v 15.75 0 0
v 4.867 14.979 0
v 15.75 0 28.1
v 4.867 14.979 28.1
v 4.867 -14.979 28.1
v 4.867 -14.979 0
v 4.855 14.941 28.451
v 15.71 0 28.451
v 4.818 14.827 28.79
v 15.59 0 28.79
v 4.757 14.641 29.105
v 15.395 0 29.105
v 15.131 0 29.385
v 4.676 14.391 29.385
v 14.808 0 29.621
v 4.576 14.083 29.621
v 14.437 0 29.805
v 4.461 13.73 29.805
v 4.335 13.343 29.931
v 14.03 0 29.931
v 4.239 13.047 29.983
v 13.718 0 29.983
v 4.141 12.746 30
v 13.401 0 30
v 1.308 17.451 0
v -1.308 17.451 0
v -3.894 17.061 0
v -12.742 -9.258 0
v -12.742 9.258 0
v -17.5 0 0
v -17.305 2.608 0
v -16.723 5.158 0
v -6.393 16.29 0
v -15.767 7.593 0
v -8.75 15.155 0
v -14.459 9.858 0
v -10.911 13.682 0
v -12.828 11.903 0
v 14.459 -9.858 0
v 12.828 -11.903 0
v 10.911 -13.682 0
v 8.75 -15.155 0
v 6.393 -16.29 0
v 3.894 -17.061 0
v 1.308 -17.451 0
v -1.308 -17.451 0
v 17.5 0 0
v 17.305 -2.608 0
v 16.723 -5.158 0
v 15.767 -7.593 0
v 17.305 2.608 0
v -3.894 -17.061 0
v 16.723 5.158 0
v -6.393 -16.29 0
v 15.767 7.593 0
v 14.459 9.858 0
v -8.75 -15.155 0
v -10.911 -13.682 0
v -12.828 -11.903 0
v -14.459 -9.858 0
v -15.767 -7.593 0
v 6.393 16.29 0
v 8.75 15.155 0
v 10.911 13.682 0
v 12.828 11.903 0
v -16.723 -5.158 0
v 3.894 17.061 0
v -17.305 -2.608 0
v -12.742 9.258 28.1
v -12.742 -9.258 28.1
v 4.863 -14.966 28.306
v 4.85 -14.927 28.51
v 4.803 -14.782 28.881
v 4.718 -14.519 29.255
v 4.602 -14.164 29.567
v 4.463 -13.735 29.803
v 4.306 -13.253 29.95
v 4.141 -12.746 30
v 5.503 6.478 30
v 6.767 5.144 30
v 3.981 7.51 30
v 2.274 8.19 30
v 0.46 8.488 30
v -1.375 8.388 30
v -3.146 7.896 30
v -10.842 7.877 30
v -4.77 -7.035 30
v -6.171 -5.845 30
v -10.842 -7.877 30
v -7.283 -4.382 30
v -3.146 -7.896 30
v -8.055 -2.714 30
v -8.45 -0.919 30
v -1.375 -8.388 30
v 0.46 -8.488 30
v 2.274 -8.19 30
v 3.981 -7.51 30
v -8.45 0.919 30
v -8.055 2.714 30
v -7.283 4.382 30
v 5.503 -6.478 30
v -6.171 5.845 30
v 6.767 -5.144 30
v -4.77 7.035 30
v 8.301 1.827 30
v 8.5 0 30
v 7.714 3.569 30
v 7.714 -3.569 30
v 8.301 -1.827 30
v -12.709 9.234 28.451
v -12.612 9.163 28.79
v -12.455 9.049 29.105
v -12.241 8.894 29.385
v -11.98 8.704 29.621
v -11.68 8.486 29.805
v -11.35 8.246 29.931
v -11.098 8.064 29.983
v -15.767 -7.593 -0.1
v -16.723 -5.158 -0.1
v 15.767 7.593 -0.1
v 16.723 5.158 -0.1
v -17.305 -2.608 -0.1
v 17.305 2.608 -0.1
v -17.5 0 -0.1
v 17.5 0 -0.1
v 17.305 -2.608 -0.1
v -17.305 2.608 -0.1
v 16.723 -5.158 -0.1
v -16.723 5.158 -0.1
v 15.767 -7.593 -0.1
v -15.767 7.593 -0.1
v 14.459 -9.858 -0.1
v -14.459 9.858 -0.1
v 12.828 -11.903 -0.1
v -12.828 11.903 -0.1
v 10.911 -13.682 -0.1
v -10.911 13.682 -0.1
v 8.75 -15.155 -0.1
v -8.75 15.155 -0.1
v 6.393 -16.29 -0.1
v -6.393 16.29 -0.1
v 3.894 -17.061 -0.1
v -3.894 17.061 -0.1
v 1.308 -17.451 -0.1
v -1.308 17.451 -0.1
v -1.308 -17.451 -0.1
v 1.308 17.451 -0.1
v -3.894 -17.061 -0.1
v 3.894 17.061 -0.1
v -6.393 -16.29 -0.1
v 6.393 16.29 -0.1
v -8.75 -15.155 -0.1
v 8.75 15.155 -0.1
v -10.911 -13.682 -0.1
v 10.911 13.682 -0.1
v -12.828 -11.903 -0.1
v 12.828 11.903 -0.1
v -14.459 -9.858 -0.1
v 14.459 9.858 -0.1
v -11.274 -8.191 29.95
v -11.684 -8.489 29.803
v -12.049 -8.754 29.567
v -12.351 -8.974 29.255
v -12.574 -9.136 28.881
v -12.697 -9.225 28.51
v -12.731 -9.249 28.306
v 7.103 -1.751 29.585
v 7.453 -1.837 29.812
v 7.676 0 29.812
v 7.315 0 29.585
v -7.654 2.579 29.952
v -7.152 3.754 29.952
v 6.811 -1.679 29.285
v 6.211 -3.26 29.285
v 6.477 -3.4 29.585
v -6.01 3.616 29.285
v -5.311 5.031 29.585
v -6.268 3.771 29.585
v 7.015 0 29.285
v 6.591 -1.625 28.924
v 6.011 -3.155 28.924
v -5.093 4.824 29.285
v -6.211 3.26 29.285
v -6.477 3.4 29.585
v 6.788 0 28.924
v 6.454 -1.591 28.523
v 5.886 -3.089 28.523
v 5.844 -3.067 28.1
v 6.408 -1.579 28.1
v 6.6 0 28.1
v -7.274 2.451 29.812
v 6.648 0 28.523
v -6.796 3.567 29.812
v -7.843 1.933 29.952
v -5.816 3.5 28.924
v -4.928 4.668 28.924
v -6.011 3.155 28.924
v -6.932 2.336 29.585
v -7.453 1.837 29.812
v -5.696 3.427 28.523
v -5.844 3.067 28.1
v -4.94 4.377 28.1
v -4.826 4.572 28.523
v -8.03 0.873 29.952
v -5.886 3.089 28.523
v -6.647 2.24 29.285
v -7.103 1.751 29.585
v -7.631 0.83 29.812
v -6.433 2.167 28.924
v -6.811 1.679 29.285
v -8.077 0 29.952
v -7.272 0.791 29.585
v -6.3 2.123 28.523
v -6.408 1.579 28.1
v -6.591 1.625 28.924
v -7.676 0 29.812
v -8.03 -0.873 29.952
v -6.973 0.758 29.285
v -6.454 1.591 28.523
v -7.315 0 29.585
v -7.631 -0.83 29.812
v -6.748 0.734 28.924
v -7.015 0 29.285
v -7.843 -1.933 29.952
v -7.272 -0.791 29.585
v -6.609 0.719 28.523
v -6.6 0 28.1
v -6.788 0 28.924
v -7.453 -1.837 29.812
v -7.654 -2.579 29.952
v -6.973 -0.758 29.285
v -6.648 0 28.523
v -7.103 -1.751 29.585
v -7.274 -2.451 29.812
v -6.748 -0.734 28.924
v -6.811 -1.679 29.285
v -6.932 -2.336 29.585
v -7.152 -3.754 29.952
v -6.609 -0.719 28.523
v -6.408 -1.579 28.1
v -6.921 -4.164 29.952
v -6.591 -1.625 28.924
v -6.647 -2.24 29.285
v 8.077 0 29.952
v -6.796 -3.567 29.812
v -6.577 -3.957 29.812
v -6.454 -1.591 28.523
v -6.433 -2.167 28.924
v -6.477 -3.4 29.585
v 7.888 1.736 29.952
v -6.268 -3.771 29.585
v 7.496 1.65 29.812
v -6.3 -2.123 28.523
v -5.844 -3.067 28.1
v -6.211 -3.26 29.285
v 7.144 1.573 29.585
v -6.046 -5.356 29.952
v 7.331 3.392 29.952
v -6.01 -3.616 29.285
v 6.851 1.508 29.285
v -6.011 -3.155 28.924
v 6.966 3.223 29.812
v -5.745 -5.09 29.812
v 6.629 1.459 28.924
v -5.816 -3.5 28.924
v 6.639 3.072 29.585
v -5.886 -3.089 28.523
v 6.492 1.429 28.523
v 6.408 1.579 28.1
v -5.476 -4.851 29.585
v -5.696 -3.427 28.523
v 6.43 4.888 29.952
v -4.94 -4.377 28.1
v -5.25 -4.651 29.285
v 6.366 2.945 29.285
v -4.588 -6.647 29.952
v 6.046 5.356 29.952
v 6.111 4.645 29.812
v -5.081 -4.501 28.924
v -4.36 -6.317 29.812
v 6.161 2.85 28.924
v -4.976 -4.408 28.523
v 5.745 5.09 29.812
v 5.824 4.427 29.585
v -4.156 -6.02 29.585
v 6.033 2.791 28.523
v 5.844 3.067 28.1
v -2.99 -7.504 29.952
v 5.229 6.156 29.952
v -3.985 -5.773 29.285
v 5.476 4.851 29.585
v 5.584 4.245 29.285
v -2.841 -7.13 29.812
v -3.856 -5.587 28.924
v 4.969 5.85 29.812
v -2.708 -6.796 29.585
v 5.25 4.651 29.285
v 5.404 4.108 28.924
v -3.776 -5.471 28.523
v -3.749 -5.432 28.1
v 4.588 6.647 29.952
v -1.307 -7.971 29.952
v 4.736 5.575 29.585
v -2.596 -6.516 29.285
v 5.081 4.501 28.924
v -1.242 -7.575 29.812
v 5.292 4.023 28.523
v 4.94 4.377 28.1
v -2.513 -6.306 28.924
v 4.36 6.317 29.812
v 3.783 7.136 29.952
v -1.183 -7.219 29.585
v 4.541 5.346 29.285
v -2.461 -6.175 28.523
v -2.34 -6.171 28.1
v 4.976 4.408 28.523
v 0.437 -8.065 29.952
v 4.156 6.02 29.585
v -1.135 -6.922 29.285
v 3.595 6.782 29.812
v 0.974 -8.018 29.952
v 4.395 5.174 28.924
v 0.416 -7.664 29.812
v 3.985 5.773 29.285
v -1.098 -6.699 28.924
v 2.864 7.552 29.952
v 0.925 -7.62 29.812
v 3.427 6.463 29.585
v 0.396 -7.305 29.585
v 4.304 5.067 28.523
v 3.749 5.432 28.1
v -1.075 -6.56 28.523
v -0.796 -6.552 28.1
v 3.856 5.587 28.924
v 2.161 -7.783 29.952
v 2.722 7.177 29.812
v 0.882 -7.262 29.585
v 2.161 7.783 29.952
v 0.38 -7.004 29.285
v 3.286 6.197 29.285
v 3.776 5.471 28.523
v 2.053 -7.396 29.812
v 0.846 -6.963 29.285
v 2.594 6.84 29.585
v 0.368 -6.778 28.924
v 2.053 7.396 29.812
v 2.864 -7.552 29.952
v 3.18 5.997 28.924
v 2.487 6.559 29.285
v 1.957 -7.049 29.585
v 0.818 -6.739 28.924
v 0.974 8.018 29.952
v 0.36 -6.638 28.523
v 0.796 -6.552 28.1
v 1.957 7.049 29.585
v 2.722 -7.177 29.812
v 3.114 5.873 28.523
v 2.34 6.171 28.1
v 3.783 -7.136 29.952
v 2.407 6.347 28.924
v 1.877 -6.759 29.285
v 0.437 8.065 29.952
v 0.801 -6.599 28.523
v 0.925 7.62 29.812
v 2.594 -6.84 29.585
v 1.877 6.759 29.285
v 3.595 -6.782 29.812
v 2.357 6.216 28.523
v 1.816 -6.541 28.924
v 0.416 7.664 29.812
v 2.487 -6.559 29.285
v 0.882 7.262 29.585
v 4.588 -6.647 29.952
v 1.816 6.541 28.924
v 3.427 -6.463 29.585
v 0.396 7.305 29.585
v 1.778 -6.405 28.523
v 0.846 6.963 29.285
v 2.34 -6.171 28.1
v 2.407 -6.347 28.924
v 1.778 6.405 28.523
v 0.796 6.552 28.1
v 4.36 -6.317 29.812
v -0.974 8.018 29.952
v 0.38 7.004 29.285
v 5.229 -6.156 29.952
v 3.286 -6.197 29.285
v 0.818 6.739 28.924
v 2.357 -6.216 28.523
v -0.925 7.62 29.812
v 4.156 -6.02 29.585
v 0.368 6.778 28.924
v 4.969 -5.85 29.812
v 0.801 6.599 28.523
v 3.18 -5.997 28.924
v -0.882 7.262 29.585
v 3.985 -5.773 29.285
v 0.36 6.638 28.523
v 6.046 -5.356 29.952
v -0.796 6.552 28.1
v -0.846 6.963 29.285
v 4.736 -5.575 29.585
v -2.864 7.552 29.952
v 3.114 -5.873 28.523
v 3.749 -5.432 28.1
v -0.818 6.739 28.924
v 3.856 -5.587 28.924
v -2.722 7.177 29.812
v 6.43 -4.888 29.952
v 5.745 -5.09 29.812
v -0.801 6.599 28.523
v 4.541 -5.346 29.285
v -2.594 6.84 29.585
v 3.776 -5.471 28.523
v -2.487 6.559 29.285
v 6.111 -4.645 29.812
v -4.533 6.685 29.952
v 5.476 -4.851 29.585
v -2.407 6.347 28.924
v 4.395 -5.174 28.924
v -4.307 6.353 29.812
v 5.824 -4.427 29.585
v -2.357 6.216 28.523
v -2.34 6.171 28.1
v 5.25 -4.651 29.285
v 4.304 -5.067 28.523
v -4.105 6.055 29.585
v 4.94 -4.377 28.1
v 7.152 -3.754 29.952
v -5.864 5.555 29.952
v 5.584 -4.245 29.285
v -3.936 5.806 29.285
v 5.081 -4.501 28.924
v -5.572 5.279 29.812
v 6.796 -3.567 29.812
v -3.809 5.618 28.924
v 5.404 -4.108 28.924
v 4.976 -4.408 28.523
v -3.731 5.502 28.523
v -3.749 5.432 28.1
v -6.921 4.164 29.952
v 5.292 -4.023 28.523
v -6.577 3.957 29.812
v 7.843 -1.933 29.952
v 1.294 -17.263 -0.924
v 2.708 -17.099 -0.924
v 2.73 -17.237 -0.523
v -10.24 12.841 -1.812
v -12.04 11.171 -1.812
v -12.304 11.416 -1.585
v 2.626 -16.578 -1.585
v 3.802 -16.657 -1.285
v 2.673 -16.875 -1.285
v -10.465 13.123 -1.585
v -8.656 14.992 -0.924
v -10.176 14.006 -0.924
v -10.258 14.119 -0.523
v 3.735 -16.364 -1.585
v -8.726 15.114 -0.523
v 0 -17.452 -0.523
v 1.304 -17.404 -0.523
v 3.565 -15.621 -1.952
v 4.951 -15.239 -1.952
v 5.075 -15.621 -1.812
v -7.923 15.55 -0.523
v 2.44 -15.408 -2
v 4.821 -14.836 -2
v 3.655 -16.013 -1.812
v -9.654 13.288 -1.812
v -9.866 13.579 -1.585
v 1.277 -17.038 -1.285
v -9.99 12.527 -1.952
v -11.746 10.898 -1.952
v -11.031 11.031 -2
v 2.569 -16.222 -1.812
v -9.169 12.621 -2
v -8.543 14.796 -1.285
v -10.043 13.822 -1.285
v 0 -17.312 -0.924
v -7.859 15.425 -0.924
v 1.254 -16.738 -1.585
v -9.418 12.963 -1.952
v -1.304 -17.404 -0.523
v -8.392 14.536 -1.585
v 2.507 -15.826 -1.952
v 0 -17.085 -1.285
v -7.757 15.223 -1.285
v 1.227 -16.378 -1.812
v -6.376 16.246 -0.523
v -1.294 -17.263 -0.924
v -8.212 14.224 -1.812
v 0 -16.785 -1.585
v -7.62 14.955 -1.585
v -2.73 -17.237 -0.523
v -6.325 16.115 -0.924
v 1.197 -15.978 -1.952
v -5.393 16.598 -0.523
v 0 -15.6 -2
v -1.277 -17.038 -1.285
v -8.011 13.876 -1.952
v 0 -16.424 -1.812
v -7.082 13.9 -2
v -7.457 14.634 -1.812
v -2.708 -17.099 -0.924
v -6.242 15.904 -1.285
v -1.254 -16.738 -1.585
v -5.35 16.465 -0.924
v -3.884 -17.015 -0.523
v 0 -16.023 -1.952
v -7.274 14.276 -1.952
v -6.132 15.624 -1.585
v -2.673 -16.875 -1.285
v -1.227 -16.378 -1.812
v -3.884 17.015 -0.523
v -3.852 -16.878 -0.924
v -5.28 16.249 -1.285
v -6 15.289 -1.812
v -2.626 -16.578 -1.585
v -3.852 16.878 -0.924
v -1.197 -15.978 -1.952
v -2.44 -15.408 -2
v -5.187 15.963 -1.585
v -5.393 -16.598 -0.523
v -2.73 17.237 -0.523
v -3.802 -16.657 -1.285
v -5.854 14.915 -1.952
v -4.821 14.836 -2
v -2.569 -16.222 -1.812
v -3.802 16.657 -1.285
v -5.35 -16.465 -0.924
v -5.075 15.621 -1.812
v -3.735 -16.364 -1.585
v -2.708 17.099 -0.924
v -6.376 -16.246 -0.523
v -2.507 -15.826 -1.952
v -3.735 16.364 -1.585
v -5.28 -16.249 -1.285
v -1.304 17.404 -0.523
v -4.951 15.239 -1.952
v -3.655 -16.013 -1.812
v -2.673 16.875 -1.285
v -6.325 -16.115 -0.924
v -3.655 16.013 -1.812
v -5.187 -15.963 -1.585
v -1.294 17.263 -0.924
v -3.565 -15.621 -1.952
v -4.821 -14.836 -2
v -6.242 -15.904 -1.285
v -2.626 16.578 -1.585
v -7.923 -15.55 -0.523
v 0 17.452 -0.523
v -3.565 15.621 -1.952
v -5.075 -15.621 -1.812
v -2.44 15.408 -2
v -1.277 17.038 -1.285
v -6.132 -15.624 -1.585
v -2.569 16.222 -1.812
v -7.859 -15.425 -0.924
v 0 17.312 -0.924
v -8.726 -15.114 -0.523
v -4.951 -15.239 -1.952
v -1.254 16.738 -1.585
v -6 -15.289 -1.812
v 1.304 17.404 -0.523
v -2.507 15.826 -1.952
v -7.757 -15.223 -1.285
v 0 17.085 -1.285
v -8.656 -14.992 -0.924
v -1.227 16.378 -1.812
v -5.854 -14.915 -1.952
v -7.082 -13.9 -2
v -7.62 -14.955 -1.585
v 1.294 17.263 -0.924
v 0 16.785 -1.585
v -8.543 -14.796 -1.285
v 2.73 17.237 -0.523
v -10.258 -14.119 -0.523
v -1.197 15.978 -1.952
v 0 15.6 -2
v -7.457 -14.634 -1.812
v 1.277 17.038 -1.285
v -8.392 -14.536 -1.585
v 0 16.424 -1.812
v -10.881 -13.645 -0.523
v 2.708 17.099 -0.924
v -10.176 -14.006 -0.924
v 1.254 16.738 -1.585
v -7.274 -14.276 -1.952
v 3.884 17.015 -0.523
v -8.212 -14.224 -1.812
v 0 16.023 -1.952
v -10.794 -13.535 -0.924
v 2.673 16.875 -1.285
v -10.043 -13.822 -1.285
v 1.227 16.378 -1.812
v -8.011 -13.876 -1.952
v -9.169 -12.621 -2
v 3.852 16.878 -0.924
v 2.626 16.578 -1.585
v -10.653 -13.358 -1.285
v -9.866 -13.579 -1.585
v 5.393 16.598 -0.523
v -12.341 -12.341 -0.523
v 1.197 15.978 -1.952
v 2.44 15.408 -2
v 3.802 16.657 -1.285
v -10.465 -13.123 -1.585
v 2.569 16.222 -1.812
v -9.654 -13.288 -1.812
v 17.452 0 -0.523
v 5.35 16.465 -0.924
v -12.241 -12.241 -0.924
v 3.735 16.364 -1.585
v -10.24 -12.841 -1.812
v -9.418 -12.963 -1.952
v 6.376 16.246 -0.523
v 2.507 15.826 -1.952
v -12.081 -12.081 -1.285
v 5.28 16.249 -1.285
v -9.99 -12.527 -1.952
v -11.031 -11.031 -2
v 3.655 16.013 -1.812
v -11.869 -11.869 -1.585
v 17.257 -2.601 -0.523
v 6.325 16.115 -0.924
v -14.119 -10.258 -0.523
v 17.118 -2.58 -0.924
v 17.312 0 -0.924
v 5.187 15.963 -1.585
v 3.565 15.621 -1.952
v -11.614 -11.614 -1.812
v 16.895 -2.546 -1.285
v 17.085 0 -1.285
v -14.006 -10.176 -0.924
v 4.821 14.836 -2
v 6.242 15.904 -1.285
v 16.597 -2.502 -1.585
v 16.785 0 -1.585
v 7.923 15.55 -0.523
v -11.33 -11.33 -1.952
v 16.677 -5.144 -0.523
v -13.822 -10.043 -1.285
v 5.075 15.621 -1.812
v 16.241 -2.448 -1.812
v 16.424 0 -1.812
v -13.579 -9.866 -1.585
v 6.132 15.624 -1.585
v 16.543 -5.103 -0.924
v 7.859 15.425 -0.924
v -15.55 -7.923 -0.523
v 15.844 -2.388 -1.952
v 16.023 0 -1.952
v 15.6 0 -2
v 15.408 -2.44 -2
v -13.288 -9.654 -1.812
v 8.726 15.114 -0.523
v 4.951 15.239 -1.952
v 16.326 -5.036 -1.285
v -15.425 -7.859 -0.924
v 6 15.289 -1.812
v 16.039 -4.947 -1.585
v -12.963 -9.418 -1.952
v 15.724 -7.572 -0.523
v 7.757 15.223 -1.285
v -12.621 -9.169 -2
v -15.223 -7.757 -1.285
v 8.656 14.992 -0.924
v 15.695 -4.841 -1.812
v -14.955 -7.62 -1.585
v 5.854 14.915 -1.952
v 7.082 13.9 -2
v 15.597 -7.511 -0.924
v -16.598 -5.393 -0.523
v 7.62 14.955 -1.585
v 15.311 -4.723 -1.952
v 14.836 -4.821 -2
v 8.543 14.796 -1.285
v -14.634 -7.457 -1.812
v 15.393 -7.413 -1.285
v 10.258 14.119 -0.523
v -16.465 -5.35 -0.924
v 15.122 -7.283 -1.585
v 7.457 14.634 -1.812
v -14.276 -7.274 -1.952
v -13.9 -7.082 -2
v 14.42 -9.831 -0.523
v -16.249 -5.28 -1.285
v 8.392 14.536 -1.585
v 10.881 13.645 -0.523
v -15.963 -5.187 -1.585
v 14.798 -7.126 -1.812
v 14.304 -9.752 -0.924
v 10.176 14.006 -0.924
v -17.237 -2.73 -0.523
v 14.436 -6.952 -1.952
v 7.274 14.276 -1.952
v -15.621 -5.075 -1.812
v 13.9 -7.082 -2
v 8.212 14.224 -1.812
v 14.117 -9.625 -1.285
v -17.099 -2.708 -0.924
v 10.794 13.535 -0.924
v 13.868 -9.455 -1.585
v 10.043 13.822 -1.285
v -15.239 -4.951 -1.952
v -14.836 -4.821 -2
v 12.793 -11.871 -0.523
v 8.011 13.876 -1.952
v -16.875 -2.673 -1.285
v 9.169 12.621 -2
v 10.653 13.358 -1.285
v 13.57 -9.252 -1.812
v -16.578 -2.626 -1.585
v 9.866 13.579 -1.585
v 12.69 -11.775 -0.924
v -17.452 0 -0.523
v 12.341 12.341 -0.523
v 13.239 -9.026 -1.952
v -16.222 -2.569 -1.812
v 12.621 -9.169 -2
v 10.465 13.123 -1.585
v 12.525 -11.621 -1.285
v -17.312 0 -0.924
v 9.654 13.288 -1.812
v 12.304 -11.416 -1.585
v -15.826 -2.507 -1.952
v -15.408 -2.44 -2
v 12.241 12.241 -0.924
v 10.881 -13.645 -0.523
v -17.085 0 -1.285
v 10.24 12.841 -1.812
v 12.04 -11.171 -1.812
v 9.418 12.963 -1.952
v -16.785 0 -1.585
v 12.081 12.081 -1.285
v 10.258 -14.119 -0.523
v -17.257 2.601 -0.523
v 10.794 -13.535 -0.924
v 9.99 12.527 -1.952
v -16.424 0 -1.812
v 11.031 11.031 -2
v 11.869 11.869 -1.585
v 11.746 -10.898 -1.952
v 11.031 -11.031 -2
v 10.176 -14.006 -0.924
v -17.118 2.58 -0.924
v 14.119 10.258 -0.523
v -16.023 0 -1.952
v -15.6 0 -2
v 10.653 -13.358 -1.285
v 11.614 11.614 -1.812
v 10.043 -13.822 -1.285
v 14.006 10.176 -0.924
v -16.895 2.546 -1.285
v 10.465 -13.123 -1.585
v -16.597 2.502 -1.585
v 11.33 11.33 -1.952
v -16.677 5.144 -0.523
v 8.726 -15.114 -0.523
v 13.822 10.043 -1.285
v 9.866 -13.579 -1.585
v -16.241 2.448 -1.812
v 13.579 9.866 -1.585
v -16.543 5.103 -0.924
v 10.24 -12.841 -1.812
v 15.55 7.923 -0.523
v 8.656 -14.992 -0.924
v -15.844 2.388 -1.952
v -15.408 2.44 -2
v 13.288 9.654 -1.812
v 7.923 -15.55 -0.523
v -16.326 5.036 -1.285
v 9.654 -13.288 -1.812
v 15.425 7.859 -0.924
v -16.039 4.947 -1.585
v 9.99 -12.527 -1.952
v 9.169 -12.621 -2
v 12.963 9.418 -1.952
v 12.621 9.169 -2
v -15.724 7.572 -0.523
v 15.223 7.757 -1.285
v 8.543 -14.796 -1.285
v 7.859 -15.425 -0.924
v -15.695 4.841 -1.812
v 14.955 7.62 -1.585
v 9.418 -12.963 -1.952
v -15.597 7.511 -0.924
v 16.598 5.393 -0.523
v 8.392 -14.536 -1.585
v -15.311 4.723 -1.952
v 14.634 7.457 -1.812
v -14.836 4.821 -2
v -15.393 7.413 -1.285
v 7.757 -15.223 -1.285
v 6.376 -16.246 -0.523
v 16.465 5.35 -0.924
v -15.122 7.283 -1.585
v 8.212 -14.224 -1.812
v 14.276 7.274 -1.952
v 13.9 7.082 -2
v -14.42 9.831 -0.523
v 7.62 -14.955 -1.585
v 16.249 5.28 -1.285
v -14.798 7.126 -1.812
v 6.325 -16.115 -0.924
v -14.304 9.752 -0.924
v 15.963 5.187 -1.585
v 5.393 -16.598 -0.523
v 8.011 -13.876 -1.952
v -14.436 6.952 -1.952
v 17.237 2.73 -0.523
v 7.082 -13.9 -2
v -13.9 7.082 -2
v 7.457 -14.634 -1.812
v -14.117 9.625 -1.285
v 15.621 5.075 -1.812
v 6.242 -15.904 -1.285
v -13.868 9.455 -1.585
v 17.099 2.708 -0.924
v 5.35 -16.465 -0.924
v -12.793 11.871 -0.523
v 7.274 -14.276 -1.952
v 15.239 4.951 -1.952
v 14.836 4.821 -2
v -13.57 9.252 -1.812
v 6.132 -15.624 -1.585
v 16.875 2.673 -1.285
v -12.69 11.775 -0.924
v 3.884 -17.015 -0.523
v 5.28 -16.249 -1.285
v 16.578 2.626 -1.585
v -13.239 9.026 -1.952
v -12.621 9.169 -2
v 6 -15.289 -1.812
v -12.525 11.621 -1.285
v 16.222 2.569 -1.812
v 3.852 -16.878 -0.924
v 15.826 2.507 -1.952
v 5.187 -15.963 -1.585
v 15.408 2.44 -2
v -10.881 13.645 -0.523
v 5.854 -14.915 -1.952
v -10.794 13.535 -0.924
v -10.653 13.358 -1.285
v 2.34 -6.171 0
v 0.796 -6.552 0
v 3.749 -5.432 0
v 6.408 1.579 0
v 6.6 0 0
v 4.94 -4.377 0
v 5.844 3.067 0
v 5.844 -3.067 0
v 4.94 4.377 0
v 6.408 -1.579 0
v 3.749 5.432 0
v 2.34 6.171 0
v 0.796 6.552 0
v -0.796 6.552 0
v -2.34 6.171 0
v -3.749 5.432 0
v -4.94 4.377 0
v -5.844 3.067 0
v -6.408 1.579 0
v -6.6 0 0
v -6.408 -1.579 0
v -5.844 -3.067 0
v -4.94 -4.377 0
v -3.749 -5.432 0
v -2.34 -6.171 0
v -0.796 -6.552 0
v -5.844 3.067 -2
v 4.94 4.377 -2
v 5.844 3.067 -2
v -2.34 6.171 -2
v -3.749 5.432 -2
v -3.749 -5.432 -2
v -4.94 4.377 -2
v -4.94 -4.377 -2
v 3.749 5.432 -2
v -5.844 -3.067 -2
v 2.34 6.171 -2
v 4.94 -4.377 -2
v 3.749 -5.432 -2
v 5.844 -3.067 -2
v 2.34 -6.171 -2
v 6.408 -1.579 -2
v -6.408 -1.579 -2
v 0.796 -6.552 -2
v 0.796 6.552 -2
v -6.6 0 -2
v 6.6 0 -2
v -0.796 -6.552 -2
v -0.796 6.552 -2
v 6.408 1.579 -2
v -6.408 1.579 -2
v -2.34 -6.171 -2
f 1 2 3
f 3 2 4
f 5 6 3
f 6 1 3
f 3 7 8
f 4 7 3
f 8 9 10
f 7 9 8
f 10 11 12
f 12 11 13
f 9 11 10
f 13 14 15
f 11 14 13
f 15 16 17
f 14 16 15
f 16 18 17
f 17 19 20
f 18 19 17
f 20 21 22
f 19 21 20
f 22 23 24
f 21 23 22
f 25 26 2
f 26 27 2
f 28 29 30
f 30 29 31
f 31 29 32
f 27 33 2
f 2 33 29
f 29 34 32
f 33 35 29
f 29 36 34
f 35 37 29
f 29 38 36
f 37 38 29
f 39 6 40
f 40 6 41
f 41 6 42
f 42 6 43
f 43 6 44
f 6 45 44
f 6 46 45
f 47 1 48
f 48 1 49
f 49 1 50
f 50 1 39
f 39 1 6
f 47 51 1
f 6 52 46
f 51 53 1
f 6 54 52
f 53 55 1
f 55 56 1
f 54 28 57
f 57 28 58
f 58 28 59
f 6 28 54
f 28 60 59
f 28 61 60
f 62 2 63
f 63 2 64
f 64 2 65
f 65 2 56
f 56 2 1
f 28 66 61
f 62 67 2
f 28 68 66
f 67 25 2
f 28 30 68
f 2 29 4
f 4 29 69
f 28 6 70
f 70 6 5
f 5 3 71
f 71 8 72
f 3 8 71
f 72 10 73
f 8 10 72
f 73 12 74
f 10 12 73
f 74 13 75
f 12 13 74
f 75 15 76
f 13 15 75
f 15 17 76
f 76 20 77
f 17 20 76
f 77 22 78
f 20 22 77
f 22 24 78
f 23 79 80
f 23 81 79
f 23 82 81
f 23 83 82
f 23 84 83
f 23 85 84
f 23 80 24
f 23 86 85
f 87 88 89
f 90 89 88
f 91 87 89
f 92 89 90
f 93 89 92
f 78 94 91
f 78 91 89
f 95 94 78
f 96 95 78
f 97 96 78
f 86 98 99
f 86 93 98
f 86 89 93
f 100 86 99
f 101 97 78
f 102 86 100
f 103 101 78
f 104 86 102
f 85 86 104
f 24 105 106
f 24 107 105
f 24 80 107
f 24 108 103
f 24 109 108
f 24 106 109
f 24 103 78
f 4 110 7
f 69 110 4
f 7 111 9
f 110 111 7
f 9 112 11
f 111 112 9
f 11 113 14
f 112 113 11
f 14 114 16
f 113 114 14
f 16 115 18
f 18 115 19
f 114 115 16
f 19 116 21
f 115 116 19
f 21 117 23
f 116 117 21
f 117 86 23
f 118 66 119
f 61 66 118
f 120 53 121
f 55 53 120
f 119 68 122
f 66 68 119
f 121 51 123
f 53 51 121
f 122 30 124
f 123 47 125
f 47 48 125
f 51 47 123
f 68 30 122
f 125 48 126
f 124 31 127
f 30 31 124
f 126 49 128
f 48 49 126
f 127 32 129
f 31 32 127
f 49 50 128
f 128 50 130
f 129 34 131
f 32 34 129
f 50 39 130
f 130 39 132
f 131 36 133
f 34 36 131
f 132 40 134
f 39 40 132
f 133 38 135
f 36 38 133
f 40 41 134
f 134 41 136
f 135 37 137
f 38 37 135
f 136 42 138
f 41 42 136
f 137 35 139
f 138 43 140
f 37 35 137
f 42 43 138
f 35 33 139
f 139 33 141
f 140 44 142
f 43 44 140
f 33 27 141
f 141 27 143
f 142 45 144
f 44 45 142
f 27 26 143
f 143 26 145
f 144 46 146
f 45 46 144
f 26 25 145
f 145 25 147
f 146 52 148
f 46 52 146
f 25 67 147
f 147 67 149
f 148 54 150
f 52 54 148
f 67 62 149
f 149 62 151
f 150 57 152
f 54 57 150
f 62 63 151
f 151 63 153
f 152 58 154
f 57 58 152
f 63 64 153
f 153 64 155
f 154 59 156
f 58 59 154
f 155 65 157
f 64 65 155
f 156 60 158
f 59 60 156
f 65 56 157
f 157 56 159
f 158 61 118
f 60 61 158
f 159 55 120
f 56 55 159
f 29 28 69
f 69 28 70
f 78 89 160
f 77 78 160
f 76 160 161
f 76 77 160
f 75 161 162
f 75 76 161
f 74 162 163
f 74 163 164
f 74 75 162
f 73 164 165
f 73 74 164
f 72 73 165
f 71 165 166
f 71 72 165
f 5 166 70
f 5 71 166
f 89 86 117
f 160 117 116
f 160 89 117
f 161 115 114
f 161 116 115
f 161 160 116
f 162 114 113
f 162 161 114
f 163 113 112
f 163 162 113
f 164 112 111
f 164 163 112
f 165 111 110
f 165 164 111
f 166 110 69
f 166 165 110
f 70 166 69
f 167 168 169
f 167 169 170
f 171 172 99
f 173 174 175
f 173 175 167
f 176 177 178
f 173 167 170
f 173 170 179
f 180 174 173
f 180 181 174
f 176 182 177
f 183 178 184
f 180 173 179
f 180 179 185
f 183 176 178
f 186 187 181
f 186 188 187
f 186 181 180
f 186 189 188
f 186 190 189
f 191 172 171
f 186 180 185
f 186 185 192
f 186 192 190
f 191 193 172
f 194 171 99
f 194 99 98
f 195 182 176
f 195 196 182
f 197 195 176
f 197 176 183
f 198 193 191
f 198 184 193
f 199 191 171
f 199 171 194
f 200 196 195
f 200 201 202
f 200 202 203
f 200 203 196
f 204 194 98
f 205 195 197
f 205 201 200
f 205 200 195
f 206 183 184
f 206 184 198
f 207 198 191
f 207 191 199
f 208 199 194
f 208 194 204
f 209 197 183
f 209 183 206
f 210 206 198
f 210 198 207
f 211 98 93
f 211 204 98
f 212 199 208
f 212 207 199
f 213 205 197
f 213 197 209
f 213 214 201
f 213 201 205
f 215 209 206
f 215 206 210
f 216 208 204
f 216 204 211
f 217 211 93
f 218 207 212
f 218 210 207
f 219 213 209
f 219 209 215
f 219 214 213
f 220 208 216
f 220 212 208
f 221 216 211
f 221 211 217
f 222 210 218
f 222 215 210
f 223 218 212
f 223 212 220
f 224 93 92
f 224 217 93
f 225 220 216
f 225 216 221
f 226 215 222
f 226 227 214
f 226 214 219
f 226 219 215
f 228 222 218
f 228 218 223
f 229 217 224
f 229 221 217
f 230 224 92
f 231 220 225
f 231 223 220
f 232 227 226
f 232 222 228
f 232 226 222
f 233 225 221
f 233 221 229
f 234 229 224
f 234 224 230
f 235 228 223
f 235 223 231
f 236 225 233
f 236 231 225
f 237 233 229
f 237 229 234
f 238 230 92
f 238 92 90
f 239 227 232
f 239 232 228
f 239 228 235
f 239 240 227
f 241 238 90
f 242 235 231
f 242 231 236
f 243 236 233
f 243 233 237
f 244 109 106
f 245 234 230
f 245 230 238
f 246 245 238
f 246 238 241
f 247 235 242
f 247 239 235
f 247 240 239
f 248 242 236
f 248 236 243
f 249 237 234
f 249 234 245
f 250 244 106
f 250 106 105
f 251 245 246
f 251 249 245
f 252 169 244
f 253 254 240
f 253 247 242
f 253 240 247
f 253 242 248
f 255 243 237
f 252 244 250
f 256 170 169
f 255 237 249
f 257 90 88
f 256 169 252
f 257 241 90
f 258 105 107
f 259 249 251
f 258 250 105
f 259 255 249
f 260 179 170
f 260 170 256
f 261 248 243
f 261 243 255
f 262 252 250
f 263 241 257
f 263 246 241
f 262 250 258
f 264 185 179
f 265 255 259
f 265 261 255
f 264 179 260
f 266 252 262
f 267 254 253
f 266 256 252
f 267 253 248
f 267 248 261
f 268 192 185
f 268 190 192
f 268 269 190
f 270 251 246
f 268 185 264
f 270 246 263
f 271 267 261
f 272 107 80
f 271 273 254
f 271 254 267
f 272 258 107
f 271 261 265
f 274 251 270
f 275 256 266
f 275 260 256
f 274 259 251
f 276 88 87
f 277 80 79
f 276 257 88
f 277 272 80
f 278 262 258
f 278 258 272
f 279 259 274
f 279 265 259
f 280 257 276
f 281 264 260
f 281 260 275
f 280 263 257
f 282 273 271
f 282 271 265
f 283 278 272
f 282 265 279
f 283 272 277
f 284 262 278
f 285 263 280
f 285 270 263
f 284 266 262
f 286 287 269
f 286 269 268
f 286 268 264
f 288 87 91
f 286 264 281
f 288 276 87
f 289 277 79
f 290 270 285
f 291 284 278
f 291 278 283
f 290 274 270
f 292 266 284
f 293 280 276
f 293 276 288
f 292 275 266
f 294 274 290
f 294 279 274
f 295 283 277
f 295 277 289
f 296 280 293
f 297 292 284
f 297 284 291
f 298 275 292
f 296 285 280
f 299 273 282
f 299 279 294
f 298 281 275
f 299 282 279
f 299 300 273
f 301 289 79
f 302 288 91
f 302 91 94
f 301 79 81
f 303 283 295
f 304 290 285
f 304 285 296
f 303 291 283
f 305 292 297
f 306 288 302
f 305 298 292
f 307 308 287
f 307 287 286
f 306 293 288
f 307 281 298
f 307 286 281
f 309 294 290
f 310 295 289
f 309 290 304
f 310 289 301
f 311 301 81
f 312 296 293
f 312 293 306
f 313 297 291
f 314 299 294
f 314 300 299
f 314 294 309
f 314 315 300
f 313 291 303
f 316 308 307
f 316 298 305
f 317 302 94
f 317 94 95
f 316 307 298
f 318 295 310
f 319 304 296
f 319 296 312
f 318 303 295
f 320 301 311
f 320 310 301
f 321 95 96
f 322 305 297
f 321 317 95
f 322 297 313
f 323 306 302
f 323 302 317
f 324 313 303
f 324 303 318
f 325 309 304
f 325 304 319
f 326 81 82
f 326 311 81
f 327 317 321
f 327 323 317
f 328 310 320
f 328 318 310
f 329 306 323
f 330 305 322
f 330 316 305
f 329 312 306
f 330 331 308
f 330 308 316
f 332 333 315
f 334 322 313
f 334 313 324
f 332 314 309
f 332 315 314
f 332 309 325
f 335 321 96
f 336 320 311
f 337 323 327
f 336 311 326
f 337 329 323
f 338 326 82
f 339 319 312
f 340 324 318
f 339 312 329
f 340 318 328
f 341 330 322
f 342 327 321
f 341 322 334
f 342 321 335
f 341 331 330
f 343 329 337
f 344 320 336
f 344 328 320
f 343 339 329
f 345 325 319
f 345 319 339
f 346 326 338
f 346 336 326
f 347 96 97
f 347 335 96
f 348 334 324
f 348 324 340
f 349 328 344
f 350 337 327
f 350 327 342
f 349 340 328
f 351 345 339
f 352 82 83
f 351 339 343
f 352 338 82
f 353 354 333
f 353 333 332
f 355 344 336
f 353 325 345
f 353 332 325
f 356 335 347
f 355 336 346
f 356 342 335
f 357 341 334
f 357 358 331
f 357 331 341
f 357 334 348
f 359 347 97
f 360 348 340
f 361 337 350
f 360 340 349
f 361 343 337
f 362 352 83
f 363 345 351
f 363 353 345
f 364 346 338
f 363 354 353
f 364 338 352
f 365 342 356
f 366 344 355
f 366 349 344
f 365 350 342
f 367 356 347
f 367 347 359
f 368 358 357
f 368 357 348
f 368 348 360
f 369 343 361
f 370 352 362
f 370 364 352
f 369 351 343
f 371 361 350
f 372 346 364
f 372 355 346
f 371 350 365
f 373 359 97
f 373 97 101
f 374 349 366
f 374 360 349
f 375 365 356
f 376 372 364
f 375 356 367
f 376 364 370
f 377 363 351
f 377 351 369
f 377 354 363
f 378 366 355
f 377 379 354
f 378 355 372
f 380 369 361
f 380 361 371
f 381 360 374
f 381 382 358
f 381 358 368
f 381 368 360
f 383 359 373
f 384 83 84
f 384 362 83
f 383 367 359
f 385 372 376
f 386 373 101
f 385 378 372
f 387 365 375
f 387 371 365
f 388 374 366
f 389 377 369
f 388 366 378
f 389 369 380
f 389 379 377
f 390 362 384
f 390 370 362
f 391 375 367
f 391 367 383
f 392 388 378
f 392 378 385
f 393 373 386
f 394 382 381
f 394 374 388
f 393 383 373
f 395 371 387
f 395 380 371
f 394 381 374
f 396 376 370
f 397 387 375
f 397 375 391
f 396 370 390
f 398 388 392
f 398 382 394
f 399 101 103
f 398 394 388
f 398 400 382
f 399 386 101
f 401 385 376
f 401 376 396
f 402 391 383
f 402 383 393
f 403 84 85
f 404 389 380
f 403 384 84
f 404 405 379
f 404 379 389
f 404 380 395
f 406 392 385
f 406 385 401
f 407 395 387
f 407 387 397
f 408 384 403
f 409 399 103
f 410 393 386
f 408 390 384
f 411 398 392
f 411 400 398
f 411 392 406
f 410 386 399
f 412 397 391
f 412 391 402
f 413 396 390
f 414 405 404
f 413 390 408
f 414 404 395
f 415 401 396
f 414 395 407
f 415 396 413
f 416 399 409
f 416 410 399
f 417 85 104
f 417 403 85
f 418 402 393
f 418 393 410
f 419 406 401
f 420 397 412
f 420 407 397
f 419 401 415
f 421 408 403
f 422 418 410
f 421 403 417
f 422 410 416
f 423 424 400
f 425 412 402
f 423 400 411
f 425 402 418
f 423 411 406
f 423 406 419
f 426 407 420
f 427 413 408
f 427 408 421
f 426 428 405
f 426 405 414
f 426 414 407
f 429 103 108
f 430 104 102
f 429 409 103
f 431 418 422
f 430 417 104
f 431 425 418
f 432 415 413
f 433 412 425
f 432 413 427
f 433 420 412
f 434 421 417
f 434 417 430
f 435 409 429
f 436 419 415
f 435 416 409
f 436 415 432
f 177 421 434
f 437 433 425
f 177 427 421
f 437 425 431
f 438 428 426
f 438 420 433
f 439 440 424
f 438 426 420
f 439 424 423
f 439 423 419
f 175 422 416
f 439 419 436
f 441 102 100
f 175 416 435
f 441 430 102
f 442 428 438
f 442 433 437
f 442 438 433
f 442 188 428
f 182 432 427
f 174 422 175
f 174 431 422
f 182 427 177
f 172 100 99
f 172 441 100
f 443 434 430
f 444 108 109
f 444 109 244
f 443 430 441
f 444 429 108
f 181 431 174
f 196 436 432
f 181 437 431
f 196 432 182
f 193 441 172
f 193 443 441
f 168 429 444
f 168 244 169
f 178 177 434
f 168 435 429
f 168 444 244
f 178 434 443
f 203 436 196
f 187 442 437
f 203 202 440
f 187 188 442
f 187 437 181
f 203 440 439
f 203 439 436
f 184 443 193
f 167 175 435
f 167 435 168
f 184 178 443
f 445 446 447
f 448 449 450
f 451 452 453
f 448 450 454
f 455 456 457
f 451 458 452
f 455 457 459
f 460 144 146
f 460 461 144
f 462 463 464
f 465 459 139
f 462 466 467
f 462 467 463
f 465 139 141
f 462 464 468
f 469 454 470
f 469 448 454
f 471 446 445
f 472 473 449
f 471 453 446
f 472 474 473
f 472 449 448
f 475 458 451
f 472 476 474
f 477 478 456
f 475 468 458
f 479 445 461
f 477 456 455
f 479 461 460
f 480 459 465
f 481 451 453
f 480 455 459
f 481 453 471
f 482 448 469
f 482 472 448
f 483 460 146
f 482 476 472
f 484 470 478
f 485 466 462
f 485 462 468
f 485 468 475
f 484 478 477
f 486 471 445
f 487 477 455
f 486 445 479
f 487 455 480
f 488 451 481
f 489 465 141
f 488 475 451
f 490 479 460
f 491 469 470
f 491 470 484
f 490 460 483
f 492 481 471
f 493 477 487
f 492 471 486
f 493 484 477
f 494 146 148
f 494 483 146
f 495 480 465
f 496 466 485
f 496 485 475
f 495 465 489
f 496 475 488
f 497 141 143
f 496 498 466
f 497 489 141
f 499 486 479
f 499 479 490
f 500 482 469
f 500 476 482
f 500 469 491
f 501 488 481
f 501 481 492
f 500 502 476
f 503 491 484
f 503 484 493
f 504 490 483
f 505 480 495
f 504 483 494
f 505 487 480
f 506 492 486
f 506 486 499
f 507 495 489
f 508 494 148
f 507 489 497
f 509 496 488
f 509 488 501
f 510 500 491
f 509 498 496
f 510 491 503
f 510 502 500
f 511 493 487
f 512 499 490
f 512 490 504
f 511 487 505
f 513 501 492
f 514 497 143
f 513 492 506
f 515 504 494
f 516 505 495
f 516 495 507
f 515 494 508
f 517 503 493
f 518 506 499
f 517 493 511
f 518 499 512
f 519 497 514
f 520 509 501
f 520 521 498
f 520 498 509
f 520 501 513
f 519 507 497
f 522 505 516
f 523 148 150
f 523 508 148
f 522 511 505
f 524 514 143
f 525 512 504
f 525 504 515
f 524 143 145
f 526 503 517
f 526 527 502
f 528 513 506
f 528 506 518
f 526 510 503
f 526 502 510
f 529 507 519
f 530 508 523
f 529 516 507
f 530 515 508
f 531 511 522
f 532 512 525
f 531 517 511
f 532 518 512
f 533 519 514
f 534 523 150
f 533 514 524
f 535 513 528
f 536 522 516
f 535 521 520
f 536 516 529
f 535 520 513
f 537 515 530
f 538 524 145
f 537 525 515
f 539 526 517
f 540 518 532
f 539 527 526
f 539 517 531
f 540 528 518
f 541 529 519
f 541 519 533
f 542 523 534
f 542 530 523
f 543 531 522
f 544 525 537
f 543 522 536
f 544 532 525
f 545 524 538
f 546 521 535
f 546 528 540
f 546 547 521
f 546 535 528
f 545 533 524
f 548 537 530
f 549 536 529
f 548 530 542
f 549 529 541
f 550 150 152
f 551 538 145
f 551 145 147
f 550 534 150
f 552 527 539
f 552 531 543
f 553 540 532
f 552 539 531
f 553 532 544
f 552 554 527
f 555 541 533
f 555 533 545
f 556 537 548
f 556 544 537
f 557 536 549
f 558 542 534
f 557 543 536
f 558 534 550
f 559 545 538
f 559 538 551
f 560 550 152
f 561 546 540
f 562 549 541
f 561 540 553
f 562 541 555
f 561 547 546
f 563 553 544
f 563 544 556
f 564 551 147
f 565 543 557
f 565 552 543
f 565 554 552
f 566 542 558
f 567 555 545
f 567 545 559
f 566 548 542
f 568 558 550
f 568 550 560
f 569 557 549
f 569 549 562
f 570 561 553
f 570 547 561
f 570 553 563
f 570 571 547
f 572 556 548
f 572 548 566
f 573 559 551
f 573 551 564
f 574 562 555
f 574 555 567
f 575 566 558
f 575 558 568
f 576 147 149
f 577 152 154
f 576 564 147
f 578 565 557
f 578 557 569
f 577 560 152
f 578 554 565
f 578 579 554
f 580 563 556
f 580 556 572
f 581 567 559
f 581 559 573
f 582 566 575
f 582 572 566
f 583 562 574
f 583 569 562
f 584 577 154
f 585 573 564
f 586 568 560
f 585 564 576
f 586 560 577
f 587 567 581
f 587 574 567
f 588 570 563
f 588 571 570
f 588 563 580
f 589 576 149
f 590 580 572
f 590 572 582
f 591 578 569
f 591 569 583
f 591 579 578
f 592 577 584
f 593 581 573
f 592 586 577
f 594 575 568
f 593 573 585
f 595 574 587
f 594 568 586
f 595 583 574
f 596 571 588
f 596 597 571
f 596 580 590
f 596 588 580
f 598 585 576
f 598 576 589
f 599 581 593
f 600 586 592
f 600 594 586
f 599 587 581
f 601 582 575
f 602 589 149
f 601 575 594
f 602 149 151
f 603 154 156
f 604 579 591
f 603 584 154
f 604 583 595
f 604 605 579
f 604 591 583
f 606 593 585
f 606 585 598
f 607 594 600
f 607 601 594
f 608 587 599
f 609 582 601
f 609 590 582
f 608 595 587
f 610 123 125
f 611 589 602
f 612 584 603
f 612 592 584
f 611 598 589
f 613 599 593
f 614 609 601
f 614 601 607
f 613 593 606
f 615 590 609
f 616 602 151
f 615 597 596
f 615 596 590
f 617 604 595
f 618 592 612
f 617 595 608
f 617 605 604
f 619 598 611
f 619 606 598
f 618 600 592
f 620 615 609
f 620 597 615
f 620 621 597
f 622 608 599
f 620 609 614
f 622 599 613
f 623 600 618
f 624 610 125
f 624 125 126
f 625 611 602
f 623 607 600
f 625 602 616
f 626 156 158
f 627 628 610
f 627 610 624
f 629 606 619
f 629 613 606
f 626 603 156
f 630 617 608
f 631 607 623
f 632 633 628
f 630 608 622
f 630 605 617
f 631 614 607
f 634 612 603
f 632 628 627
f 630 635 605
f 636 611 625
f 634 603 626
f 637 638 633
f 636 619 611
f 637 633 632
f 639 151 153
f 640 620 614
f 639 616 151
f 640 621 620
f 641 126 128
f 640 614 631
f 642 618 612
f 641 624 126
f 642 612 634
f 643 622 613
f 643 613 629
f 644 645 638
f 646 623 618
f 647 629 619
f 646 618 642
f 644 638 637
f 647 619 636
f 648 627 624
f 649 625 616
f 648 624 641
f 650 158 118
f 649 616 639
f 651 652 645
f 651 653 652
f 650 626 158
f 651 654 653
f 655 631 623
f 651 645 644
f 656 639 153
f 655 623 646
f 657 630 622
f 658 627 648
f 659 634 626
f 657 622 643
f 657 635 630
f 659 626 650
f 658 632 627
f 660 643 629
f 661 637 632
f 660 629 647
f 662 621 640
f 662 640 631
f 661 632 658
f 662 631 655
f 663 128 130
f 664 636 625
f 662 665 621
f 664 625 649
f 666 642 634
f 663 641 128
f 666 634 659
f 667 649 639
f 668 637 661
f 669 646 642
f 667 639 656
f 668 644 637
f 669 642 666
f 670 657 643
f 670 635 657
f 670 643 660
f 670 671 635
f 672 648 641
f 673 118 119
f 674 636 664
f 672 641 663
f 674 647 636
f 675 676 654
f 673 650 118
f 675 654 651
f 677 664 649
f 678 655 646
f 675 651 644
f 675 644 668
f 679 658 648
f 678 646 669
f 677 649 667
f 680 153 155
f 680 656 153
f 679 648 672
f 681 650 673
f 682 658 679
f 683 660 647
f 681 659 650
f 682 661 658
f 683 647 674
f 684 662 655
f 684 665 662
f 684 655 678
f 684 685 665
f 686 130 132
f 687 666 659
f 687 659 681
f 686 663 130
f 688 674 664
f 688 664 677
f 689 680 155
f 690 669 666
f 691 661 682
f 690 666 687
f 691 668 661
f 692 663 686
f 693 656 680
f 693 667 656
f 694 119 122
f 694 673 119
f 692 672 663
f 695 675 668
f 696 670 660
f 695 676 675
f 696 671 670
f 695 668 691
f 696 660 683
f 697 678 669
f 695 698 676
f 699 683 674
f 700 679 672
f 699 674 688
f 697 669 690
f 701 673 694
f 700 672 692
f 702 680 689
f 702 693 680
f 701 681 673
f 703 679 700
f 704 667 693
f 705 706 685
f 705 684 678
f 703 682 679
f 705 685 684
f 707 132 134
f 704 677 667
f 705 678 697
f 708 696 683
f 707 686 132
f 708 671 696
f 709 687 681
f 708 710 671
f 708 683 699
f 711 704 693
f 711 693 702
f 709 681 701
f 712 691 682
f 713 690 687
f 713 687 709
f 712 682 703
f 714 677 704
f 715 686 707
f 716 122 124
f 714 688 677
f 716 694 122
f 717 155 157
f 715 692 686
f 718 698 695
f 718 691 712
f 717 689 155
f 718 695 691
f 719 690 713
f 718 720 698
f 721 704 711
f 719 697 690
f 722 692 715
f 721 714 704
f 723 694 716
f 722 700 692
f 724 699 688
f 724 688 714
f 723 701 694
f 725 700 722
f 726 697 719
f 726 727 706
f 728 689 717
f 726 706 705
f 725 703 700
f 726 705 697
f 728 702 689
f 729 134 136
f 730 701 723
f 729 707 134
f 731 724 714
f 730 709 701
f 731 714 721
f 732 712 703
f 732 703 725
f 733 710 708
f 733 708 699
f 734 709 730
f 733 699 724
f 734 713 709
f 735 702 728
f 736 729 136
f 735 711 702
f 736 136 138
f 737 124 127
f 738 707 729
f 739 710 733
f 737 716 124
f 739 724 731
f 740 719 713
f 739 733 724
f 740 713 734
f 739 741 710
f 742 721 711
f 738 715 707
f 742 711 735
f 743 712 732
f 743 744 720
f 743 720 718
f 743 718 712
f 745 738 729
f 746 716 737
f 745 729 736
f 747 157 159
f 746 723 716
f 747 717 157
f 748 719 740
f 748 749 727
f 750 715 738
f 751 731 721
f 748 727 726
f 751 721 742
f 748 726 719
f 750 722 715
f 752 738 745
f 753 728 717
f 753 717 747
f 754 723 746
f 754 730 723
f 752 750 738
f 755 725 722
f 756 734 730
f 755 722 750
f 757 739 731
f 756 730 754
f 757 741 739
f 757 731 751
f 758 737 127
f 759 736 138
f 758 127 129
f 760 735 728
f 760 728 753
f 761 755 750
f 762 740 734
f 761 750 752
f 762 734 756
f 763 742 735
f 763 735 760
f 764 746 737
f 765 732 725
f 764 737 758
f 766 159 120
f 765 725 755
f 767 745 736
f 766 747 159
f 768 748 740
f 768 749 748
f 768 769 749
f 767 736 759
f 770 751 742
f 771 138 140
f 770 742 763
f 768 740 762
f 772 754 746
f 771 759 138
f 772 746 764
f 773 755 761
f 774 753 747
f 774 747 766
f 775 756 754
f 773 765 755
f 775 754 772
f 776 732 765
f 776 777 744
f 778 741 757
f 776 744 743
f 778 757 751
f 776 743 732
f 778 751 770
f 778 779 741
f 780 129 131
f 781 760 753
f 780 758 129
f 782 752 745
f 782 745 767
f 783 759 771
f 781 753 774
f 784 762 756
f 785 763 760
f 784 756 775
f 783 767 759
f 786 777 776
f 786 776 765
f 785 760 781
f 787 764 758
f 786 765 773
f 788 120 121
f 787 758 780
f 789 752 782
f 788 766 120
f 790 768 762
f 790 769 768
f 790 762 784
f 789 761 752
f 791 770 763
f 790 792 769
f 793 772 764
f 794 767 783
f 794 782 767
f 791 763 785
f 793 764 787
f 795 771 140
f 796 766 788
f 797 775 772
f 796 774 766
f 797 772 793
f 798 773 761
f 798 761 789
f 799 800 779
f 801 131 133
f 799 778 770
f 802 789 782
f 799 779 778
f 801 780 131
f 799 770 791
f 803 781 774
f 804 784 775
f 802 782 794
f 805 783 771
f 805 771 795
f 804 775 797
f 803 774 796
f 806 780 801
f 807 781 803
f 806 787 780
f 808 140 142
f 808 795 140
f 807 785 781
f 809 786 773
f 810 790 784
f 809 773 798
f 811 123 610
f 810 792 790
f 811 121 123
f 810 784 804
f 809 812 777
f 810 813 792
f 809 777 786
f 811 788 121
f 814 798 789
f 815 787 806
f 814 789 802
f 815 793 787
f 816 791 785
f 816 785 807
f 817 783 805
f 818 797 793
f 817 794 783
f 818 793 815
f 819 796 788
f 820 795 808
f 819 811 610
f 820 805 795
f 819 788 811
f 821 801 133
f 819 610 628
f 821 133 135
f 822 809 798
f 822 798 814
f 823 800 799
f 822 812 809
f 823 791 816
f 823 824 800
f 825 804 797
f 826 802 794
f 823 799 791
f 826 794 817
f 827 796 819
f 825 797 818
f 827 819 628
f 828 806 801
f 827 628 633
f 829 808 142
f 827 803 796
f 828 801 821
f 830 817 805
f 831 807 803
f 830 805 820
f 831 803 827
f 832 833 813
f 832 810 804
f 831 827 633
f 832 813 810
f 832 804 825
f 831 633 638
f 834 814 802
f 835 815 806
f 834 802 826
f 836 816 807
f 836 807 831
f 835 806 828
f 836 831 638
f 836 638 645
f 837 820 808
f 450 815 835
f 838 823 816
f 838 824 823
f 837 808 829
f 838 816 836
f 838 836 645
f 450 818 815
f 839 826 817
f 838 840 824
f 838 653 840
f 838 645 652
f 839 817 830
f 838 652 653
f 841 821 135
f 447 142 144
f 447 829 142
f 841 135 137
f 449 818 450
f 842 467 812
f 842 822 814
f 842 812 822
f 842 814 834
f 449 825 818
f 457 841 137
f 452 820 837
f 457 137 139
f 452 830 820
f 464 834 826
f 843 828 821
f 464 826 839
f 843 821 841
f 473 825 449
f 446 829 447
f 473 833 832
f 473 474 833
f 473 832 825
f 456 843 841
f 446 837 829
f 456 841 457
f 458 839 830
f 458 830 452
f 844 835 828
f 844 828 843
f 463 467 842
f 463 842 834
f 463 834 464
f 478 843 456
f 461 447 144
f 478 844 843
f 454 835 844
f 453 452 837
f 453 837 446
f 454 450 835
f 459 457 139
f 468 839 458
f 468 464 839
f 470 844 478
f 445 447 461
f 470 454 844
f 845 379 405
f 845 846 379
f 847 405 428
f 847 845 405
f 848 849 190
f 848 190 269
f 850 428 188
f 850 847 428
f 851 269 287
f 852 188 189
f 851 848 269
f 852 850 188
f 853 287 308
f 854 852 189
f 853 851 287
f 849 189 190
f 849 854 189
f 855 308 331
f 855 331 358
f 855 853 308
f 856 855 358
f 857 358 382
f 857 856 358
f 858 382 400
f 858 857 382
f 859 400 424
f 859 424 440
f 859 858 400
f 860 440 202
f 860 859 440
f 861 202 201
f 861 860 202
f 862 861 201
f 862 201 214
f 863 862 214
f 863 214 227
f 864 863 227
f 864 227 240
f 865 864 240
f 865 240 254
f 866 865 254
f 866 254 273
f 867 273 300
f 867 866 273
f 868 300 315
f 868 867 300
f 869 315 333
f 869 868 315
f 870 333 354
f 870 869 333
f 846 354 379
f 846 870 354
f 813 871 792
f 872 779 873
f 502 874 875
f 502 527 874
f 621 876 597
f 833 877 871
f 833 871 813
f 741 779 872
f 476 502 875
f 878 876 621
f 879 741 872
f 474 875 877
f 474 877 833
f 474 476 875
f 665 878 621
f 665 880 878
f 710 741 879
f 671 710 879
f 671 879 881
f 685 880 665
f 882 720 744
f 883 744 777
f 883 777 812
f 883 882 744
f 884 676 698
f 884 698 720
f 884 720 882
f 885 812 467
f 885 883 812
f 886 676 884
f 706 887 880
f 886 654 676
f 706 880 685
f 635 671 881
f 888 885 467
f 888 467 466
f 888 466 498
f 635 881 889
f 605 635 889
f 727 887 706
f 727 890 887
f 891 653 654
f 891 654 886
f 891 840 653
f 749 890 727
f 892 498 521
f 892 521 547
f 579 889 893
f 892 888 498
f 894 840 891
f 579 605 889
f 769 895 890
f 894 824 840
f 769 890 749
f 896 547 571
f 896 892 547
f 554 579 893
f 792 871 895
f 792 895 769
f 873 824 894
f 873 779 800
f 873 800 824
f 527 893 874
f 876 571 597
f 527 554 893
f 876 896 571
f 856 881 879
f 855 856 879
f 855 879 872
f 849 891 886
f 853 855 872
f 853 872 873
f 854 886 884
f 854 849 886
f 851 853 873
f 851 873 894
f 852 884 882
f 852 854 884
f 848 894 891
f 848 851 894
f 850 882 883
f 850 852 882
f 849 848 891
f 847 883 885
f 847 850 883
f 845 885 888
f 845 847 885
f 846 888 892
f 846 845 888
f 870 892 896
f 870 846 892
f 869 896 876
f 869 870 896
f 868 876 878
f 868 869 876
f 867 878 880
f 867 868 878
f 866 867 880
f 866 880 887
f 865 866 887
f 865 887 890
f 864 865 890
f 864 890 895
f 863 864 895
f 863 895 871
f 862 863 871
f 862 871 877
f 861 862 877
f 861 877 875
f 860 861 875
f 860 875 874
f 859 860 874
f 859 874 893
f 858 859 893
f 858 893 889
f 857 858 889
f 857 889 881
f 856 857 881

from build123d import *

# Parameters (mm, degrees)
SKETCH_R          = 6.6
PAD_DEPTH         = 30
COPYSKETCH001_R   = 17.5
COPYSKETCH001_R_2 = 6.6
PAD001_DEPTH      = 2
FILLET_R          = 1.9


with BuildPart() as part:
    # Sketch → Pad (new body)
    with BuildSketch(Plane.XY):
        Polygon((15.75, 0), (4.867018, 14.97914), (-12.742018, 9.257618), (-12.742018, -9.257618), (4.867018, -14.97914), align=None)
        Circle(SKETCH_R, mode=Mode.SUBTRACT)
    extrude(amount=PAD_DEPTH)

    # CopySketch001 → Pad001 (join)
    with BuildSketch(Plane(origin=(0, 0, 0), x_dir=(1, 0, 0), z_dir=(0, 0, -1))):
        Circle(COPYSKETCH001_R)
        Circle(COPYSKETCH001_R_2, mode=Mode.SUBTRACT)
    extrude(amount=PAD001_DEPTH)

    # Fillet
    fillet_edges = [part.edges().sort_by_distance(p)[0] for p in [
        (10.308509, 7.48957, 30),
        (-3.9375, 12.118379, 30),
        (-12.742018, 0, 30),
        (-3.9375, -12.118379, 30),
        (10.308509, -7.48957, 30),
        (-6.6, 0, 30),
        (-17.5, 0, -2),
    ]]
    fillet(fillet_edges, radius=FILLET_R)


solid = part.part
